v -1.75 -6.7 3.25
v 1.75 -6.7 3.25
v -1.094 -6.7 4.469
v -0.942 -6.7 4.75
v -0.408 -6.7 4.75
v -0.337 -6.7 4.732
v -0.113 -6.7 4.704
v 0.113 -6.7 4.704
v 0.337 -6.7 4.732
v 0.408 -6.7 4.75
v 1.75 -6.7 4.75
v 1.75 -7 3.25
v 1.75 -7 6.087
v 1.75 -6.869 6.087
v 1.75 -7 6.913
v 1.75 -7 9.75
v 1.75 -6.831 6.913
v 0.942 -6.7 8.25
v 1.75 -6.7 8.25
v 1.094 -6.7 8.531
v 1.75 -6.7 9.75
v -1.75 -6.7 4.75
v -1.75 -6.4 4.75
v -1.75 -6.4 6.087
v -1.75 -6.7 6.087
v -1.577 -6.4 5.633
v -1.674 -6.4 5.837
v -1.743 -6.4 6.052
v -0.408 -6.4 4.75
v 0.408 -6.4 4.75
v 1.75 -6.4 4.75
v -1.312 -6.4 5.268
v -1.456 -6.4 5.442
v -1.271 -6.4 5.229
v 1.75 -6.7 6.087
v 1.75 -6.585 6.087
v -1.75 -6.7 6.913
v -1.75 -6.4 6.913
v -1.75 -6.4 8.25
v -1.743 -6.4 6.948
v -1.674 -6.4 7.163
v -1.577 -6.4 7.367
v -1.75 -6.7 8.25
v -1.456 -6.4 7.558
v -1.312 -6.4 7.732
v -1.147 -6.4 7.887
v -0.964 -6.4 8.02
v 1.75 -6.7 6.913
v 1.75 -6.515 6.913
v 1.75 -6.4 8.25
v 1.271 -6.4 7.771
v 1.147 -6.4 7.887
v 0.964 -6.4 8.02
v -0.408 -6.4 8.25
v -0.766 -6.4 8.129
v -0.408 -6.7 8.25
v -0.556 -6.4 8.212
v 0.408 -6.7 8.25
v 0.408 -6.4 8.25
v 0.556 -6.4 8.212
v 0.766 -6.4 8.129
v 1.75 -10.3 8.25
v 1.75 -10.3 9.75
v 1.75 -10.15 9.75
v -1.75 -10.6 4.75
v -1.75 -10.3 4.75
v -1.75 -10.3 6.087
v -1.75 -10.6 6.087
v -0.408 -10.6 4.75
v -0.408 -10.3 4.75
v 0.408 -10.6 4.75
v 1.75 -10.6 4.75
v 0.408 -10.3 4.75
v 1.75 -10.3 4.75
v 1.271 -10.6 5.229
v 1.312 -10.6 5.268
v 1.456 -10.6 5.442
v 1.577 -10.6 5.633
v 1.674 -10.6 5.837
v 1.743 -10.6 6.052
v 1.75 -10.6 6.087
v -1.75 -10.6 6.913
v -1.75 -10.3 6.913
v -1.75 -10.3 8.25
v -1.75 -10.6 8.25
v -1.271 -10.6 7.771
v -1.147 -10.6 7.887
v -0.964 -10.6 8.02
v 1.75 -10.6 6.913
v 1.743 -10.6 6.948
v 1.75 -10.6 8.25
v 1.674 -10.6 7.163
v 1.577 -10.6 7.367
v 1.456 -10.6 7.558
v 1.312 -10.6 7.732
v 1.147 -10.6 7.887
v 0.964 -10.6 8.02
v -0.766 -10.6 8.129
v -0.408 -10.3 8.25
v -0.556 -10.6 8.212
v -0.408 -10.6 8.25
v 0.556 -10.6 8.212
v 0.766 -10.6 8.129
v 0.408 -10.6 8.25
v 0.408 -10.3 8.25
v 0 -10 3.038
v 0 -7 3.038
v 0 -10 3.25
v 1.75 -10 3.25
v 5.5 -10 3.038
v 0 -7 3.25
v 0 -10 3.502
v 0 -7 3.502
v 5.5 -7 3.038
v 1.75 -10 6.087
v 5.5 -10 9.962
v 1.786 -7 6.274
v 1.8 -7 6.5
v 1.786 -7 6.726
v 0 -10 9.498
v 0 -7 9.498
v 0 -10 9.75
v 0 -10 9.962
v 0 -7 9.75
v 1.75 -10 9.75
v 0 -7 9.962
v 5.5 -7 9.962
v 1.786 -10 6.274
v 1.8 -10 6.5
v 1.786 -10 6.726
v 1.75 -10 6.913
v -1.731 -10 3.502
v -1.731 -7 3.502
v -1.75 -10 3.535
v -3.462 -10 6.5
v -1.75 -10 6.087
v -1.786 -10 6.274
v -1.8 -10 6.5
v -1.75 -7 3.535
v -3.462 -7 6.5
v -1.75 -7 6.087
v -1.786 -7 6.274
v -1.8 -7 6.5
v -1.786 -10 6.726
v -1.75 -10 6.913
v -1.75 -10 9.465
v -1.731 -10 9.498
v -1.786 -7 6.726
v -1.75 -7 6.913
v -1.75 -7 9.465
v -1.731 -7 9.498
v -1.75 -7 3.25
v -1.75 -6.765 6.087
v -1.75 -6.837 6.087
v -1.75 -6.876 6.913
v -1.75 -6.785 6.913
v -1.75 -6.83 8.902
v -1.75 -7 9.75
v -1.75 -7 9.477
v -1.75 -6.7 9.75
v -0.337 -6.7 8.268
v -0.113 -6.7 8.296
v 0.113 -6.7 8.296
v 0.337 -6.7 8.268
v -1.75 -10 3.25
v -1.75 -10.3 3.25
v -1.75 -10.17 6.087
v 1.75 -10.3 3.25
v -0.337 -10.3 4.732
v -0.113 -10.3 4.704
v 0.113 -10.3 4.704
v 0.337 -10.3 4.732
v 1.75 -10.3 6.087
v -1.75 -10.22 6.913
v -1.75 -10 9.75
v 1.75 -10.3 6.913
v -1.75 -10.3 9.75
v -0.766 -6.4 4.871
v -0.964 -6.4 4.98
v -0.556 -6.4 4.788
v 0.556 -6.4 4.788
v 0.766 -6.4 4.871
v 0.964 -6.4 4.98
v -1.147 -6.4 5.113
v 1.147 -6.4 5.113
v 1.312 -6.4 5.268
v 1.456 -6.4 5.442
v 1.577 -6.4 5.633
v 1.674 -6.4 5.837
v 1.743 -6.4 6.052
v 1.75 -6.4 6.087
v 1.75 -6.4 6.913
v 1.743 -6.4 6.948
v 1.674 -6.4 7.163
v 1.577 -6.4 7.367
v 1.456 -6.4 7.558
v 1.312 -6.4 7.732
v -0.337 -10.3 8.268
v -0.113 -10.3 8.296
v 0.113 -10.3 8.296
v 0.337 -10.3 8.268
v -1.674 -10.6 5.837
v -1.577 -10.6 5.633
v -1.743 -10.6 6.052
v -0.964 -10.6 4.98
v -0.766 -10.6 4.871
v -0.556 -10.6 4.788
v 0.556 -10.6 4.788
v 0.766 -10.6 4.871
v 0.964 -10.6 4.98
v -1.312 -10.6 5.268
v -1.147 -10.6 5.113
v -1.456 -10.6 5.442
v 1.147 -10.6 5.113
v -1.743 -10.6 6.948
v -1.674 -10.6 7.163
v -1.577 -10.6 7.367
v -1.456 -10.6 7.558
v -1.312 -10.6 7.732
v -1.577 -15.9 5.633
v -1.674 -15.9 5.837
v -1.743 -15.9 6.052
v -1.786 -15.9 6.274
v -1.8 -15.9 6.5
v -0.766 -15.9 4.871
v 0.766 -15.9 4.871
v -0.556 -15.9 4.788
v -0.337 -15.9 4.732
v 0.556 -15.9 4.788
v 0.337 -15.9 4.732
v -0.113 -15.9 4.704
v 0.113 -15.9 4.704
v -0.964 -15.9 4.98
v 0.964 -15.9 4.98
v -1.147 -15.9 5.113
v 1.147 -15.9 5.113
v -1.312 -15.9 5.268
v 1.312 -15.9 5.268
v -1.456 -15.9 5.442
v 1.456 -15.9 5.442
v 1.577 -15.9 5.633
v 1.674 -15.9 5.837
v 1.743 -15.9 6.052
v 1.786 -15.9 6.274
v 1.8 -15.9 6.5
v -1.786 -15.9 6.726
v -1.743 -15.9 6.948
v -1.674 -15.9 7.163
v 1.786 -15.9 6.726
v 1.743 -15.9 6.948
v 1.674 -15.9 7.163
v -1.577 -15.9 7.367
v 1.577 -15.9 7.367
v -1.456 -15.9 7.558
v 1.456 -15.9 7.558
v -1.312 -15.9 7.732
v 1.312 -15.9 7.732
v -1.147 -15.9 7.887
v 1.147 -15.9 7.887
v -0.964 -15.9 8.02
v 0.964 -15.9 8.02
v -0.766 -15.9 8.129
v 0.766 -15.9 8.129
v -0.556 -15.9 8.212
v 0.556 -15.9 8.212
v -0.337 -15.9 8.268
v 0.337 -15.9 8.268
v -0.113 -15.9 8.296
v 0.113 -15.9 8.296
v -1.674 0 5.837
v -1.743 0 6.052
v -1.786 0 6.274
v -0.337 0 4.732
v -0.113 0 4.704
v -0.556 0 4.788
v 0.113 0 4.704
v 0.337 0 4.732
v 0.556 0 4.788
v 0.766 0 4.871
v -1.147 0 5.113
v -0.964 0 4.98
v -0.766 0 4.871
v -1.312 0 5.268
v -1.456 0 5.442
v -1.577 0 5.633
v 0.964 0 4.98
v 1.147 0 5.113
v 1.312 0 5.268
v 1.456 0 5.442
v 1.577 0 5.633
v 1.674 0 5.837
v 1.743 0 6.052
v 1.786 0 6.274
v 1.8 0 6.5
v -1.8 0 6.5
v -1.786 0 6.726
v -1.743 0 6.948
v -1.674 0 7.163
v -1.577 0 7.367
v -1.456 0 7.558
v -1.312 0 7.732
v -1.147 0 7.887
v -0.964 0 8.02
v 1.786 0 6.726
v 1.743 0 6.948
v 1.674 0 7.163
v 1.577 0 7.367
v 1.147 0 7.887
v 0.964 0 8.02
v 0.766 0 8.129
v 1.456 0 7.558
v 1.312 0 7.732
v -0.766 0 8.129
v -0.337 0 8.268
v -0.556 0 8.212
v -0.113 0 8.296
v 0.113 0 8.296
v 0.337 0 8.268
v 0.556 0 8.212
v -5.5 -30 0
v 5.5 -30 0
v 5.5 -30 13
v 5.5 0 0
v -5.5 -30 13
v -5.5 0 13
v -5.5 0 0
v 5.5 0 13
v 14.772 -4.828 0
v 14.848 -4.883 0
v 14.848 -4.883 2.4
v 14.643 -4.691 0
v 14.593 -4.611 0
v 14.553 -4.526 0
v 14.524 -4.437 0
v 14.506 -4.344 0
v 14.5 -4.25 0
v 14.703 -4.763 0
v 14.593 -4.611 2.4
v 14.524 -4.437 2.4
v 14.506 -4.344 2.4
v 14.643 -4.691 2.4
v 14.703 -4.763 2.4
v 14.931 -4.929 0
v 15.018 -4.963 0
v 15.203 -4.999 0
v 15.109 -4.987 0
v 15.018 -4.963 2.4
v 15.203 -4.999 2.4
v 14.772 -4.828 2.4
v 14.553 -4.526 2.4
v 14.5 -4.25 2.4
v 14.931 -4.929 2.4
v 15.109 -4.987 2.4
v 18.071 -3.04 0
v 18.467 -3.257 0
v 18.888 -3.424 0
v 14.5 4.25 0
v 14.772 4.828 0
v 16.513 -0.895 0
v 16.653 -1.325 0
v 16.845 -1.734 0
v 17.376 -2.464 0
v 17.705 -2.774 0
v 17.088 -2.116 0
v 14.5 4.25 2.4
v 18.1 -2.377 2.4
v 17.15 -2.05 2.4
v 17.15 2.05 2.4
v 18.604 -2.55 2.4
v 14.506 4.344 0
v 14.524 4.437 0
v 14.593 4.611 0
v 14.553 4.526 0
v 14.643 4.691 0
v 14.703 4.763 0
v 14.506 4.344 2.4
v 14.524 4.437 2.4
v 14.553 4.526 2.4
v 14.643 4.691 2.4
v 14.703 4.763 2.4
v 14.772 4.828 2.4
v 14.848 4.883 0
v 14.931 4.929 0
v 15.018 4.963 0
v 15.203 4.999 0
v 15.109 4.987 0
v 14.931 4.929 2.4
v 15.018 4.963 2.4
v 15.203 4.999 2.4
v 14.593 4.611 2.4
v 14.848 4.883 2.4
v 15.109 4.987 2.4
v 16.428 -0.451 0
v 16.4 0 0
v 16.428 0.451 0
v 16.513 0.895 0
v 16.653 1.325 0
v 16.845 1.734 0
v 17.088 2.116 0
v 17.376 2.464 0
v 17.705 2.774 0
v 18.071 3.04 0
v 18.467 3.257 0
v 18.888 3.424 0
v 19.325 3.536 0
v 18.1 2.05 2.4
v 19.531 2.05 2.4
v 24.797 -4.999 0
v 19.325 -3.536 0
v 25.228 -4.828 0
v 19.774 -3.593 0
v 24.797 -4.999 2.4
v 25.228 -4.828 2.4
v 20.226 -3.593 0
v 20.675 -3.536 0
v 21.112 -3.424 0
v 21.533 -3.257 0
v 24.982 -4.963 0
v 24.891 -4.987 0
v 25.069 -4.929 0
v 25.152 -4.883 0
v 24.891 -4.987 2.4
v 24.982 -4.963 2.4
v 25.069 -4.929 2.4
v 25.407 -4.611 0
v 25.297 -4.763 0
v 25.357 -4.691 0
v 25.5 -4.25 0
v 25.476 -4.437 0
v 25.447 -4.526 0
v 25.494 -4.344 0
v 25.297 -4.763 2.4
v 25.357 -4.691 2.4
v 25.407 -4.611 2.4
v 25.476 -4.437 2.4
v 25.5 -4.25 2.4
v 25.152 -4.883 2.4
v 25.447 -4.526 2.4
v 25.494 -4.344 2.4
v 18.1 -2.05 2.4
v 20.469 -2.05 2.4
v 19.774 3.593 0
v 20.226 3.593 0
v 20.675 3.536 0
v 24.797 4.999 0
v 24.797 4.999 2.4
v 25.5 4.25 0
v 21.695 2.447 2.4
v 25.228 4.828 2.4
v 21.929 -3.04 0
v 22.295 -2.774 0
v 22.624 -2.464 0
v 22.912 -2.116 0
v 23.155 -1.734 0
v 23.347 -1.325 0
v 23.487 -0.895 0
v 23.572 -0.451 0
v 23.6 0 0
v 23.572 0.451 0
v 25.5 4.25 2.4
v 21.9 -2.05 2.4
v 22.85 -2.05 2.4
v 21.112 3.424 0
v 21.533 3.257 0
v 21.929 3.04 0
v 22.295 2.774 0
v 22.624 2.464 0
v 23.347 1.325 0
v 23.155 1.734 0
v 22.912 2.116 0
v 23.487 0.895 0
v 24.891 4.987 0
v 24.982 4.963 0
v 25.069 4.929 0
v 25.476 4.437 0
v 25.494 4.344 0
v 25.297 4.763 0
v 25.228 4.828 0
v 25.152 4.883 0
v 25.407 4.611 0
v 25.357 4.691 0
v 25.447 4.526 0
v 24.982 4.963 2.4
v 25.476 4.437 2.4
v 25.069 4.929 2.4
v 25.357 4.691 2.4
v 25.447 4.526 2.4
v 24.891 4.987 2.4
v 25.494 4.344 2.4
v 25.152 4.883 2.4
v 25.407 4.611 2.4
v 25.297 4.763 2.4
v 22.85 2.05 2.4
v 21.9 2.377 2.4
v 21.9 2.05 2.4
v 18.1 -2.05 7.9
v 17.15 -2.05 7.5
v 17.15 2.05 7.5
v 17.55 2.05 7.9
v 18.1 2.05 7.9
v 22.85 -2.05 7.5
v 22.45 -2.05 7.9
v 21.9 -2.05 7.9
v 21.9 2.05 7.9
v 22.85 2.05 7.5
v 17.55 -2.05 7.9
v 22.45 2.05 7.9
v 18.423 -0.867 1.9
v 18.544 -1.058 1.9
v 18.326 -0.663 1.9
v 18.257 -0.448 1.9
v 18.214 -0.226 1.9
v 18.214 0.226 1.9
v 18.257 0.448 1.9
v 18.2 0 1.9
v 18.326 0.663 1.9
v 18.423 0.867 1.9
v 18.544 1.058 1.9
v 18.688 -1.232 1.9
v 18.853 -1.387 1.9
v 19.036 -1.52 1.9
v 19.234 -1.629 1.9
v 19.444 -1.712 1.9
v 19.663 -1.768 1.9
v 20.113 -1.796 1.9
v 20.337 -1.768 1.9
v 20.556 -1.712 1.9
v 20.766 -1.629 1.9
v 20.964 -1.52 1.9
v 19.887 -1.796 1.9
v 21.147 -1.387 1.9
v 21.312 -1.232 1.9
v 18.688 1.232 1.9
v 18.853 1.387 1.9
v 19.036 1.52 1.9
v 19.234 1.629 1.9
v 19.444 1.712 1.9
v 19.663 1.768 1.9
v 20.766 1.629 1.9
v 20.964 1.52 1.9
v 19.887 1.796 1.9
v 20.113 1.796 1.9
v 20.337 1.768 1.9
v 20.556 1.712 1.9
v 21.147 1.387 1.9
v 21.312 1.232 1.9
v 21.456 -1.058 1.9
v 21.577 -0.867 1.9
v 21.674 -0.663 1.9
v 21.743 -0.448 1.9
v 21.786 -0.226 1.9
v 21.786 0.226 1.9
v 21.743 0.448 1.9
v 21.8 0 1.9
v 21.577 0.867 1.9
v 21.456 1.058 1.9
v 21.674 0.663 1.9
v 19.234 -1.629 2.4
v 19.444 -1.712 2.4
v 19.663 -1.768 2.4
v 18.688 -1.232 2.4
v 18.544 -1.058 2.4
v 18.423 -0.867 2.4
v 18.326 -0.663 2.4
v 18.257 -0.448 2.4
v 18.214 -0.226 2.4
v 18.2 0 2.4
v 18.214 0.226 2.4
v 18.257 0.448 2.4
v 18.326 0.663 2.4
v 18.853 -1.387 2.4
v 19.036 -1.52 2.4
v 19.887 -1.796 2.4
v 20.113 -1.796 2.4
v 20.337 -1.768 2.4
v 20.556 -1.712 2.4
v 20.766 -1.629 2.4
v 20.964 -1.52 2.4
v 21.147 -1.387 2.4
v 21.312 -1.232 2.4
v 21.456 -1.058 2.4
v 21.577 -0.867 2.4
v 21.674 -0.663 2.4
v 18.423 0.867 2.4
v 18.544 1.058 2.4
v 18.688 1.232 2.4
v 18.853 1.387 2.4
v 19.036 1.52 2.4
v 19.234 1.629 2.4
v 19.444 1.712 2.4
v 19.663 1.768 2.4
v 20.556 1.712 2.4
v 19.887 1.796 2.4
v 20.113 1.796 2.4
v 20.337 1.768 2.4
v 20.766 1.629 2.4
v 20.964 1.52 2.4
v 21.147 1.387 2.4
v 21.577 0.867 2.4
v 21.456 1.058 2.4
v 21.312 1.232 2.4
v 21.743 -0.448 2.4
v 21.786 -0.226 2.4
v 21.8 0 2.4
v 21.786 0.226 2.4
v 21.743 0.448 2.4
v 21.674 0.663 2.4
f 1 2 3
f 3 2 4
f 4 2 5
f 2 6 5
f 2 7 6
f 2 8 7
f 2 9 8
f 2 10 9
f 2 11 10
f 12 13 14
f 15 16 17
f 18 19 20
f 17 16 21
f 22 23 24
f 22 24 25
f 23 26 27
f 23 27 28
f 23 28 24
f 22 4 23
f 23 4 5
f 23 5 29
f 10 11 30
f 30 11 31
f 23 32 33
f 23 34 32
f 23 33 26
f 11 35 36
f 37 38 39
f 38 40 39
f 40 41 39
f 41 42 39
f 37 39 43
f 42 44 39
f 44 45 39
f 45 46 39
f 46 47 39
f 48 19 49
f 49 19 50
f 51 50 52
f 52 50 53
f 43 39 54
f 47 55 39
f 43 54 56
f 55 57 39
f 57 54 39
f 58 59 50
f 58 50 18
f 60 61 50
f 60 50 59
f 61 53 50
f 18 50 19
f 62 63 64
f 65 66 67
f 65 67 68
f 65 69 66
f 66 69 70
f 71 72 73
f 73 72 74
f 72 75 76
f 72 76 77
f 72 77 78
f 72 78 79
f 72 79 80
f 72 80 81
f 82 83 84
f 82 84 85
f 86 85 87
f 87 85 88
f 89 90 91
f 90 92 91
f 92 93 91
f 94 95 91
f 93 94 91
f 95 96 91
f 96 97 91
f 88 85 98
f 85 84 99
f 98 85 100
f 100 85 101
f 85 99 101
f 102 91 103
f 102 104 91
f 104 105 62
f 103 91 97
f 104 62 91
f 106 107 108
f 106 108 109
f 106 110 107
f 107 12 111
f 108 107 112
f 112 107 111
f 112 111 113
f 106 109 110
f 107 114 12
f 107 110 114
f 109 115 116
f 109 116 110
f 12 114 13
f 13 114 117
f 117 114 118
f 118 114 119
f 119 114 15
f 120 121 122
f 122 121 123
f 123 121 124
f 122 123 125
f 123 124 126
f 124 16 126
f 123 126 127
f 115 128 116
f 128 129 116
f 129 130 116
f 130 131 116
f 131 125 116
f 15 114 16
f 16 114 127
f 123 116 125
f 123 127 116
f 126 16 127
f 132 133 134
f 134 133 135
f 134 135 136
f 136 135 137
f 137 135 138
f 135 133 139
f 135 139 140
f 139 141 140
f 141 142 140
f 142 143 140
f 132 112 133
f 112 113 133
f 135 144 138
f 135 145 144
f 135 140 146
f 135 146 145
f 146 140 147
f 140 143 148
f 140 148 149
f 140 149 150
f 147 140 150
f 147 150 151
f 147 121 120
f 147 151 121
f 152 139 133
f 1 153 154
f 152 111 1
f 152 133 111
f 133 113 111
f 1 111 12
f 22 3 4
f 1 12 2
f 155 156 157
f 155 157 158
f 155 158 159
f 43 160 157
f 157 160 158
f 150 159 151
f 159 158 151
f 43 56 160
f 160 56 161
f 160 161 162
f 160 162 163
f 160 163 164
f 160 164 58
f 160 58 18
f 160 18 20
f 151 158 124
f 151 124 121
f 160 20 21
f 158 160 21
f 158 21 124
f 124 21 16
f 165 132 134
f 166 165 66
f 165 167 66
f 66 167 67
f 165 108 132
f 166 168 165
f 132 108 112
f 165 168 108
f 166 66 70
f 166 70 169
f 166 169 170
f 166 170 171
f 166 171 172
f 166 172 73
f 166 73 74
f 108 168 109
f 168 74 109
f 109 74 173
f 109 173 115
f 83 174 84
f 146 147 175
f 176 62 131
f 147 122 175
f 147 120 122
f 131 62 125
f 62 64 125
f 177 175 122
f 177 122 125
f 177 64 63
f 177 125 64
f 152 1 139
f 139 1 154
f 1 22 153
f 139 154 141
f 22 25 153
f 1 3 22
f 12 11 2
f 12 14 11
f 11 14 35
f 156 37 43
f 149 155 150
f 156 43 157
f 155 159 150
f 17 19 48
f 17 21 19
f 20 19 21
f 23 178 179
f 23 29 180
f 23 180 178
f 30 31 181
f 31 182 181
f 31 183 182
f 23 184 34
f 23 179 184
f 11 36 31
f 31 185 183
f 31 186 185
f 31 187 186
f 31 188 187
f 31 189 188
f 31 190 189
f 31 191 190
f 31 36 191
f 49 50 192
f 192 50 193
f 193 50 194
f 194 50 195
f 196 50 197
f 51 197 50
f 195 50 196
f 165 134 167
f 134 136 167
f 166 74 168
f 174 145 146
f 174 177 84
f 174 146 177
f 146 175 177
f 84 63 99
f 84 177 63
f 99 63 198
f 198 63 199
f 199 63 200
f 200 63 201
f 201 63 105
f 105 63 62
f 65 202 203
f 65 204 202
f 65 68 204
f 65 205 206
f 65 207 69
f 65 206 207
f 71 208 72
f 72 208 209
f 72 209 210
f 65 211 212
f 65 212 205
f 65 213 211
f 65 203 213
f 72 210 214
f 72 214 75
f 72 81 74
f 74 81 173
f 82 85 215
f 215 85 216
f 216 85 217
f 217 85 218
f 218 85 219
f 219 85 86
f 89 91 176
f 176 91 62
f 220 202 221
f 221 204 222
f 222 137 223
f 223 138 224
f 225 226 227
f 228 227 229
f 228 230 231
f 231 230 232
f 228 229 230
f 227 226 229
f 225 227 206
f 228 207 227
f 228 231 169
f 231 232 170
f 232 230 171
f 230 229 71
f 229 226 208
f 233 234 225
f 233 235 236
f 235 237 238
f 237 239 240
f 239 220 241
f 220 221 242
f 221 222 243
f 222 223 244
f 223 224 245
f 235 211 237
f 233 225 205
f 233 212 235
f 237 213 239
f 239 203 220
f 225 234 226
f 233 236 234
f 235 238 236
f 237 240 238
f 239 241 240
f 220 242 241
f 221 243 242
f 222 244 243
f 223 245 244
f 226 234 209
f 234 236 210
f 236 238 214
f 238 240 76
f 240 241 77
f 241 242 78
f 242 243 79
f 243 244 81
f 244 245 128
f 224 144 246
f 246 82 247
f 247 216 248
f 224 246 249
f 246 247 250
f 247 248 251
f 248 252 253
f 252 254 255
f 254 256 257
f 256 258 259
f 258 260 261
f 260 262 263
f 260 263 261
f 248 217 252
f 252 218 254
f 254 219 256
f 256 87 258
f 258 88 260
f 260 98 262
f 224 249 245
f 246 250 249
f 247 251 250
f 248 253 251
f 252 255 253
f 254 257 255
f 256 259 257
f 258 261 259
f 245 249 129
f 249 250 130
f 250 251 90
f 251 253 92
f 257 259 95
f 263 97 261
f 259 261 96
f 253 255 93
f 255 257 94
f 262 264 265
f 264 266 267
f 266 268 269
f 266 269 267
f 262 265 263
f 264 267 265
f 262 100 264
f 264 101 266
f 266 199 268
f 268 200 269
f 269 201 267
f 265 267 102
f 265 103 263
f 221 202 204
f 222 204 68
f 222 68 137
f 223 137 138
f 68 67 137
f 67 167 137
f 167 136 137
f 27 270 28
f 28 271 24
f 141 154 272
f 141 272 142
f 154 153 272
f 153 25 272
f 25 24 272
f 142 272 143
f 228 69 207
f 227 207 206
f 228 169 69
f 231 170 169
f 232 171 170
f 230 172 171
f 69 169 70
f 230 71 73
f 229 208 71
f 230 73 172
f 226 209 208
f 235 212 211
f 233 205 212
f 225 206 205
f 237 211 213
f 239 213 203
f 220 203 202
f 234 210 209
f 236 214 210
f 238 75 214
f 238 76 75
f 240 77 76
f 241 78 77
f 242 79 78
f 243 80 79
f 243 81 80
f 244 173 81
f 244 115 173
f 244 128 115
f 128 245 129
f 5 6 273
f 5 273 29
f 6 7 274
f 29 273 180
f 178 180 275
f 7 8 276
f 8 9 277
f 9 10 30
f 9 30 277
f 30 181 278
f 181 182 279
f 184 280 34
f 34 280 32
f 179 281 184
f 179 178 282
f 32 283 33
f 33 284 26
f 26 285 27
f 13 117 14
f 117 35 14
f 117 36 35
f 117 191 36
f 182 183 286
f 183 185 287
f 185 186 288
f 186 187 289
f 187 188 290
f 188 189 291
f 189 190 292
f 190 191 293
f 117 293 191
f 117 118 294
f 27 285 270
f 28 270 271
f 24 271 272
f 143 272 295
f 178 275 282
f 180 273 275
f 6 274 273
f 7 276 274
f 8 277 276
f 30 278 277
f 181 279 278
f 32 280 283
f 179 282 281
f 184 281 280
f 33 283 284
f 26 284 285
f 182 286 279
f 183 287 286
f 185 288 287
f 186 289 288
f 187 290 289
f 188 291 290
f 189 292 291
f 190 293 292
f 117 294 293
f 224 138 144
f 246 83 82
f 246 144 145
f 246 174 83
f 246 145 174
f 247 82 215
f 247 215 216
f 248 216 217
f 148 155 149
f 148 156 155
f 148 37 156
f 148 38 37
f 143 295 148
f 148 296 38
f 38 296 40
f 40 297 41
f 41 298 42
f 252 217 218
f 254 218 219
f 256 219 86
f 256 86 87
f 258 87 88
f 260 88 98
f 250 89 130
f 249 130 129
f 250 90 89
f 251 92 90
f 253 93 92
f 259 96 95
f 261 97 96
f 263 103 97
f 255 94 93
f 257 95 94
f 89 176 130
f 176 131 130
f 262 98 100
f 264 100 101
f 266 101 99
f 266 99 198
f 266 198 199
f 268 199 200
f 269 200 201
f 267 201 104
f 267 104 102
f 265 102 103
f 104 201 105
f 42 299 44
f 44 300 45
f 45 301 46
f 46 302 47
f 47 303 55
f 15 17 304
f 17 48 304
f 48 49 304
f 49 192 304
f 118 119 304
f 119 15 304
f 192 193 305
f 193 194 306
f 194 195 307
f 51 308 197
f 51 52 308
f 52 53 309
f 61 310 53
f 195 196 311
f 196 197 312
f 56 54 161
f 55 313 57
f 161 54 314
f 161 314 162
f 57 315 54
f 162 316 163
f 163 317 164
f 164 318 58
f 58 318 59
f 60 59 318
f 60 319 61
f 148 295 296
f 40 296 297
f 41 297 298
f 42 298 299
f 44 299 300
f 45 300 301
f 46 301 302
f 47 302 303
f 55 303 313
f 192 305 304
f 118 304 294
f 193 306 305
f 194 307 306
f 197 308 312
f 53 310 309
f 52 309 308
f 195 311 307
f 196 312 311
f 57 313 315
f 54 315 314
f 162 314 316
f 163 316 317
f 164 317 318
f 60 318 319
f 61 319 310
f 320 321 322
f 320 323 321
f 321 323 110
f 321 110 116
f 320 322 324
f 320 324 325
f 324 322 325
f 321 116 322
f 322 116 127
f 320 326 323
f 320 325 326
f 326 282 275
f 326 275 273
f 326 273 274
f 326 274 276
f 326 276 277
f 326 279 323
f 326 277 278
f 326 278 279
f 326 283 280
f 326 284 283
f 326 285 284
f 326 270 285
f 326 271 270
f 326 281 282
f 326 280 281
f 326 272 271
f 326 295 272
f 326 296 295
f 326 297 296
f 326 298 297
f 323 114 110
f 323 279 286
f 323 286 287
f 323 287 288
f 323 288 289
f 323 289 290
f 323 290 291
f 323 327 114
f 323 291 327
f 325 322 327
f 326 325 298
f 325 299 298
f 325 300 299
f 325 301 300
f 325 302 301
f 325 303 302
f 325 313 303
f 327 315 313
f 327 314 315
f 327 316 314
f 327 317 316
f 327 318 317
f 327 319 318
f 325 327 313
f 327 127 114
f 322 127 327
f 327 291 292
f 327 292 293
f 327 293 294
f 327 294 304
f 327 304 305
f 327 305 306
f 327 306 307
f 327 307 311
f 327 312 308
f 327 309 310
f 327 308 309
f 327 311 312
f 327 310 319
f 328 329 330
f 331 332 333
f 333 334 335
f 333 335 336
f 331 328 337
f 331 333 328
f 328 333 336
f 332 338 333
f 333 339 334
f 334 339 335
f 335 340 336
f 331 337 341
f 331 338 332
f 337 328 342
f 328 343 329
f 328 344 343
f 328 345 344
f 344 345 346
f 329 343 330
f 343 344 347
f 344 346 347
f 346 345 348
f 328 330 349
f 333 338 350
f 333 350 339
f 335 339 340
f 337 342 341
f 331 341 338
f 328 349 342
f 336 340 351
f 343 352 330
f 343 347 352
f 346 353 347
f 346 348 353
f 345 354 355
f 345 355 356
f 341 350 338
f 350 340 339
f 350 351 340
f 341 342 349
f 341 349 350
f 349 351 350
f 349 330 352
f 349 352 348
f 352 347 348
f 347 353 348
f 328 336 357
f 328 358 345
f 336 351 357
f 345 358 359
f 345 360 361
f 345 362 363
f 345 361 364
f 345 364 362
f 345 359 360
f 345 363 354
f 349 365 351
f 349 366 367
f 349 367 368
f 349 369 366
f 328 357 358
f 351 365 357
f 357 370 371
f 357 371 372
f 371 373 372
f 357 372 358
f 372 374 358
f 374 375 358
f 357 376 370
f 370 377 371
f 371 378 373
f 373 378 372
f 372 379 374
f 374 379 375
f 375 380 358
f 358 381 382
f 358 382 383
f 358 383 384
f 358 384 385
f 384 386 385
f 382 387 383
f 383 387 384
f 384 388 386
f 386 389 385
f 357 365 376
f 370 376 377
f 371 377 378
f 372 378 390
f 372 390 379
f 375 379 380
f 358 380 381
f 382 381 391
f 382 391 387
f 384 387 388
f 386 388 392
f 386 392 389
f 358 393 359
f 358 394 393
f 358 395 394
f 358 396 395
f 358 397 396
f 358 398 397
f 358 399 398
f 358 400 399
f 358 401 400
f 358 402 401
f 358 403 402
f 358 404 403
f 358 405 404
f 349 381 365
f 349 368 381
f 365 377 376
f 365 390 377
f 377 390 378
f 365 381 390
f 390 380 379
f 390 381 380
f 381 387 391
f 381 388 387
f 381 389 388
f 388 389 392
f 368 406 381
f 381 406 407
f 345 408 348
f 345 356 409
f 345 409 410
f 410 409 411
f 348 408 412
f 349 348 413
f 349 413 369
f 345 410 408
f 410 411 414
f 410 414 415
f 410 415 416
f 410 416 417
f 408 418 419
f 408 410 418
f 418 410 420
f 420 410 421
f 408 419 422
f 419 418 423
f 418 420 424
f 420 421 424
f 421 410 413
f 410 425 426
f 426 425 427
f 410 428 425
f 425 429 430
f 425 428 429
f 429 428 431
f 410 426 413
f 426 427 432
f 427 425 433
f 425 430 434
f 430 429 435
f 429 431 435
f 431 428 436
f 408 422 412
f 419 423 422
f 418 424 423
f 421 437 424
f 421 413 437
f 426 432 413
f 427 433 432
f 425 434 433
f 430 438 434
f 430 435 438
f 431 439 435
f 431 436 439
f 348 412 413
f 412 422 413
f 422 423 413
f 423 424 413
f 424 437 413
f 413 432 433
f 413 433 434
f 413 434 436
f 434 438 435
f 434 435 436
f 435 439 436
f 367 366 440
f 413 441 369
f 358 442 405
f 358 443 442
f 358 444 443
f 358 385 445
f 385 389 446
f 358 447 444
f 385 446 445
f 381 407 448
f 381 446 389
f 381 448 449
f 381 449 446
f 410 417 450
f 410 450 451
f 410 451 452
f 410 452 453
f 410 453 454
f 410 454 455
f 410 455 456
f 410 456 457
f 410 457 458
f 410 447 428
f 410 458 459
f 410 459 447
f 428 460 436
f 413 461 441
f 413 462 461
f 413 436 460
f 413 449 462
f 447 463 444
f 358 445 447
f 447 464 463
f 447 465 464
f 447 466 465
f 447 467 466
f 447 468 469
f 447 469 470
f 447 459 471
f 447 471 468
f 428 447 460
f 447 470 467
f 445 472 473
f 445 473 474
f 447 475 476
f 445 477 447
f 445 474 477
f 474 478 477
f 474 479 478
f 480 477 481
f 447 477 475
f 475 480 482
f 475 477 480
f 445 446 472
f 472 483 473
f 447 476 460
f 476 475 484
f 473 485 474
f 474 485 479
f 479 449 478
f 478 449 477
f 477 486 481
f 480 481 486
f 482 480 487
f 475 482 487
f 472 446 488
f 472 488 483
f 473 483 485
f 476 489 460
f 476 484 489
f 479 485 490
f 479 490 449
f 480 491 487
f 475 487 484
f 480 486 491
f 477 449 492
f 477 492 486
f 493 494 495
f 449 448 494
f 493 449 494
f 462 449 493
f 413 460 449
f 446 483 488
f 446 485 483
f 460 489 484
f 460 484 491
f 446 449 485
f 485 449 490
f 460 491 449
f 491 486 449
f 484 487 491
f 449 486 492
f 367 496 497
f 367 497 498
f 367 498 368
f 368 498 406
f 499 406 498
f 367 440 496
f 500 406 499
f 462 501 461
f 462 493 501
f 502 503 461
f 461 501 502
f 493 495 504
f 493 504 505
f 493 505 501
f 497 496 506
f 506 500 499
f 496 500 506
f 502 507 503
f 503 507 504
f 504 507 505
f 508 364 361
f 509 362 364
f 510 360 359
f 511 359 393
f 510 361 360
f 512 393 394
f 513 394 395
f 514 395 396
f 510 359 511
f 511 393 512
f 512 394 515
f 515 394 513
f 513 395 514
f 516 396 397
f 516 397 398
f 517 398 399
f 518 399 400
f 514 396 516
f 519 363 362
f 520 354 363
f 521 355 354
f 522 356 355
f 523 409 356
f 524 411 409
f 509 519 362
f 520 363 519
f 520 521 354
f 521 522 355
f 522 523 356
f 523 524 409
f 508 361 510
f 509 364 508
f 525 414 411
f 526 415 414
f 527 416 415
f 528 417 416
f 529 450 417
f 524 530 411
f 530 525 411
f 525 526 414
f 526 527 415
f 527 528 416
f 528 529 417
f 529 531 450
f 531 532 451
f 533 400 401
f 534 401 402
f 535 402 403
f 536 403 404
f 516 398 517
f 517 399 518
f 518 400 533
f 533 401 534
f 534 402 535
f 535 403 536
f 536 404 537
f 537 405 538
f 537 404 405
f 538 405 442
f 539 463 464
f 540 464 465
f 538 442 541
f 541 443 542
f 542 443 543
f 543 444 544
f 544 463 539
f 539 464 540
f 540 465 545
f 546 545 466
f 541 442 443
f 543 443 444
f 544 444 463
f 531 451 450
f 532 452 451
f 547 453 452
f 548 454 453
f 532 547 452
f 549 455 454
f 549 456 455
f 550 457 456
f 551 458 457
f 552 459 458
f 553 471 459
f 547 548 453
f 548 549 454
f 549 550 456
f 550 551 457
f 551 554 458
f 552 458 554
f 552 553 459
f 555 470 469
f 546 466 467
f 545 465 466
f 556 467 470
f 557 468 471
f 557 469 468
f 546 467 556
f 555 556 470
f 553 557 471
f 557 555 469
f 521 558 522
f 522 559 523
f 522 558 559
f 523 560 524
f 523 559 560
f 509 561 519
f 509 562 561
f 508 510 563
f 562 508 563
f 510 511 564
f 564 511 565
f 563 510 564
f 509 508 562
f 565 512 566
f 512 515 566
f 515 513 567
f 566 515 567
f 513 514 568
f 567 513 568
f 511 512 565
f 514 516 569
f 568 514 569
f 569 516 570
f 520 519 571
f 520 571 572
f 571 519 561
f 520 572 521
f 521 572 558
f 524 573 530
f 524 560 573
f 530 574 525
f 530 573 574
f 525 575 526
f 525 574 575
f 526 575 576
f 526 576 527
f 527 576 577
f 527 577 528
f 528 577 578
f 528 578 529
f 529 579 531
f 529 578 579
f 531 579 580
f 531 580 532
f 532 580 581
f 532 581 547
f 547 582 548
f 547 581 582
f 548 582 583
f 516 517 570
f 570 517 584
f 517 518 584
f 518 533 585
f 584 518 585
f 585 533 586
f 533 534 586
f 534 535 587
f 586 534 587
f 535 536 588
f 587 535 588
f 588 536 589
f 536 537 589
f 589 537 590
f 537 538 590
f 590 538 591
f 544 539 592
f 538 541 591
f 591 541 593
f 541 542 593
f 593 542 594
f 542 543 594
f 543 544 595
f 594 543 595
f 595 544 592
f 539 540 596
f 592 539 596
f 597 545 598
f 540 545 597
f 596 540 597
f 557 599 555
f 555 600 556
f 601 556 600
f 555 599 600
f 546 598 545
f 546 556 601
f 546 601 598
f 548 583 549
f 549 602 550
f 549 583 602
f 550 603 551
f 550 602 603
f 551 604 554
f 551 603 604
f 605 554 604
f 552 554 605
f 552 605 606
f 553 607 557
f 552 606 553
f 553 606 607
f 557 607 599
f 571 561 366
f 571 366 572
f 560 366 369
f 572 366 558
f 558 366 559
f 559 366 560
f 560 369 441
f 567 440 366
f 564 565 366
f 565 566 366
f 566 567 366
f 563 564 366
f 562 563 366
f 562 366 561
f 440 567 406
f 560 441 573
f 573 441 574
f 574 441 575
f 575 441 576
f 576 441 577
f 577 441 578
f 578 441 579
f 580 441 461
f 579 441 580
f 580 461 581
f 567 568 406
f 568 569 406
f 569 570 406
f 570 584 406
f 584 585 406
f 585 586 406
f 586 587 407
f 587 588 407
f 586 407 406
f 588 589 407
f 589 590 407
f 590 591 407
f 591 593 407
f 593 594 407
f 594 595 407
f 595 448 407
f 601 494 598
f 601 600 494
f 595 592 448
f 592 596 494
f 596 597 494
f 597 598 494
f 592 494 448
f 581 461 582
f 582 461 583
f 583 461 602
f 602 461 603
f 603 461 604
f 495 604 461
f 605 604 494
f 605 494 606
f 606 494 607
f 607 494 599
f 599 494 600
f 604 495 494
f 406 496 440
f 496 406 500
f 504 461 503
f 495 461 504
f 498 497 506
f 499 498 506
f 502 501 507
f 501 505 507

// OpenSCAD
$fn = 50;

difference() {
	union() {
		translate(v = [0, 0, 4.5]) {
			rotate(a = [0, 0, 0]) {
				difference() {
					union() {
						translate(v = [-5.5, -30.0, -4.5]) {
							cube(size = [11.0, 30.0, 13.0]);
						}
					}
					union() {
						translate(v = [0, -7.0, 2.0]) {
							rotate(a = [90, 0, 0]) {
								difference() {
									union() {
										translate(v = [-1.75, -3.25, -0.3]) {
											cube(size = [3.5, 6.5, 0.3]);
										}
										translate(v = [-1.75, -1.75, -0.6]) {
											cube(size = [3.5, 3.5, 0.3]);
										}
										translate(v = [-1.75, -3.25, 3]) {
											cube(size = [3.5, 6.5, 0.3]);
										}
										translate(v = [-1.75, -1.75, 3.3]) {
											cube(size = [3.5, 3.5, 0.3]);
										}
										translate(v = [0.0, -3.4619999999999997, 0]) {
											cube(size = [20, 6.9239999999999995, 3]);
										}
										linear_extrude(height = 3) {
											polygon(points = [[3.4619999999999997, 0.0], [1.7310000000000003, 2.9981799479017264], [-1.7309999999999992, 2.9981799479017264], [-3.4619999999999997, 4.2397272186481365e-16], [-1.7310000000000014, -2.998179947901726], [1.7309999999999977, -2.9981799479017277]]);
										}
										translate(v = [-1.75, -3.25, -0.3]) {
											cube(size = [3.5, 6.5, 0.3]);
										}
										translate(v = [-1.75, -1.75, -0.6]) {
											cube(size = [3.5, 3.5, 0.3]);
										}
										translate(v = [-1.75, -3.25, 3]) {
											cube(size = [3.5, 6.5, 0.3]);
										}
										translate(v = [-1.75, -1.75, 3.3]) {
											cube(size = [3.5, 3.5, 0.3]);
										}
										translate(v = [-1.75, -3.25, -0.3]) {
											cube(size = [3.5, 6.5, 0.3]);
										}
										translate(v = [-1.75, -1.75, -0.6]) {
											cube(size = [3.5, 3.5, 0.3]);
										}
										translate(v = [-1.75, -3.25, 3]) {
											cube(size = [3.5, 6.5, 0.3]);
										}
										translate(v = [-1.75, -1.75, 3.3]) {
											cube(size = [3.5, 3.5, 0.3]);
										}
									}
									union();
								}
							}
						}
						translate(v = [0, 0.1, 2.0]) {
							rotate(a = [90, 0, 0]) {
								cylinder(h = 16, r = 1.8);
							}
						}
					}
				}
			}
		}
		translate(v = [20, 0, 0]) {
			rotate(a = [0, 0, 0]) {
				difference() {
					union() {
						hull() {
							translate(v = [-4.75, 4.25, 0]) {
								cylinder(h = 2.4, r = 0.75);
							}
							translate(v = [4.75, 4.25, 0]) {
								cylinder(h = 2.4, r = 0.75);
							}
							translate(v = [-4.75, -4.25, 0]) {
								cylinder(h = 2.4, r = 0.75);
							}
							translate(v = [4.75, -4.25, 0]) {
								cylinder(h = 2.4, r = 0.75);
							}
						}
						translate(v = [-2.85, -2.05, 2.35]) {
							cube(size = [5.7, 4.1, 5.55]);
						}
					}
					union() {
						translate(v = [0, 0, 0]) {
							rotate(a = [0, 180, 0]) {
								difference() {
									union() {
										translate(v = [0, 0, -20.0]) {
											cylinder(h = 20.0, r = 1.5);
										}
										translate(v = [0, 0, -1.9]) {
											cylinder(h = 1.9, r1 = 1.8, r2 = 3.6);
										}
										cylinder(h = 250, r = 3.6);
										translate(v = [0, 0, -20.0]) {
											cylinder(h = 20.0, r = 1.8);
										}
										translate(v = [0, 0, -20.0]) {
											cylinder(h = 20.0, r = 1.5);
										}
									}
									union();
								}
							}
						}
						translate(v = [-1.9, -2.55, 2.4]) {
							cube(size = [3.8, 5.1, 5.6]);
						}
						translate(v = [0, 2.15, 0]) {
							rotate(a = [90, 0, 0]) {
								linear_extrude(height = 4.3) {
									polygon(points = [[-3.0500000000000003, 7.300000000000001], [-2.25, 8.1], [-3.0500000000000003, 8.1]]);
								}
							}
						}
						translate(v = [0, 2.15, 0]) {
							rotate(a = [90, 0, 0]) {
								linear_extrude(height = 4.3) {
									polygon(points = [[3.0500000000000003, 7.300000000000001], [2.25, 8.1], [3.0500000000000003, 8.1]]);
								}
							}
						}
					}
				}
			}
		}
	}
	union();
}
